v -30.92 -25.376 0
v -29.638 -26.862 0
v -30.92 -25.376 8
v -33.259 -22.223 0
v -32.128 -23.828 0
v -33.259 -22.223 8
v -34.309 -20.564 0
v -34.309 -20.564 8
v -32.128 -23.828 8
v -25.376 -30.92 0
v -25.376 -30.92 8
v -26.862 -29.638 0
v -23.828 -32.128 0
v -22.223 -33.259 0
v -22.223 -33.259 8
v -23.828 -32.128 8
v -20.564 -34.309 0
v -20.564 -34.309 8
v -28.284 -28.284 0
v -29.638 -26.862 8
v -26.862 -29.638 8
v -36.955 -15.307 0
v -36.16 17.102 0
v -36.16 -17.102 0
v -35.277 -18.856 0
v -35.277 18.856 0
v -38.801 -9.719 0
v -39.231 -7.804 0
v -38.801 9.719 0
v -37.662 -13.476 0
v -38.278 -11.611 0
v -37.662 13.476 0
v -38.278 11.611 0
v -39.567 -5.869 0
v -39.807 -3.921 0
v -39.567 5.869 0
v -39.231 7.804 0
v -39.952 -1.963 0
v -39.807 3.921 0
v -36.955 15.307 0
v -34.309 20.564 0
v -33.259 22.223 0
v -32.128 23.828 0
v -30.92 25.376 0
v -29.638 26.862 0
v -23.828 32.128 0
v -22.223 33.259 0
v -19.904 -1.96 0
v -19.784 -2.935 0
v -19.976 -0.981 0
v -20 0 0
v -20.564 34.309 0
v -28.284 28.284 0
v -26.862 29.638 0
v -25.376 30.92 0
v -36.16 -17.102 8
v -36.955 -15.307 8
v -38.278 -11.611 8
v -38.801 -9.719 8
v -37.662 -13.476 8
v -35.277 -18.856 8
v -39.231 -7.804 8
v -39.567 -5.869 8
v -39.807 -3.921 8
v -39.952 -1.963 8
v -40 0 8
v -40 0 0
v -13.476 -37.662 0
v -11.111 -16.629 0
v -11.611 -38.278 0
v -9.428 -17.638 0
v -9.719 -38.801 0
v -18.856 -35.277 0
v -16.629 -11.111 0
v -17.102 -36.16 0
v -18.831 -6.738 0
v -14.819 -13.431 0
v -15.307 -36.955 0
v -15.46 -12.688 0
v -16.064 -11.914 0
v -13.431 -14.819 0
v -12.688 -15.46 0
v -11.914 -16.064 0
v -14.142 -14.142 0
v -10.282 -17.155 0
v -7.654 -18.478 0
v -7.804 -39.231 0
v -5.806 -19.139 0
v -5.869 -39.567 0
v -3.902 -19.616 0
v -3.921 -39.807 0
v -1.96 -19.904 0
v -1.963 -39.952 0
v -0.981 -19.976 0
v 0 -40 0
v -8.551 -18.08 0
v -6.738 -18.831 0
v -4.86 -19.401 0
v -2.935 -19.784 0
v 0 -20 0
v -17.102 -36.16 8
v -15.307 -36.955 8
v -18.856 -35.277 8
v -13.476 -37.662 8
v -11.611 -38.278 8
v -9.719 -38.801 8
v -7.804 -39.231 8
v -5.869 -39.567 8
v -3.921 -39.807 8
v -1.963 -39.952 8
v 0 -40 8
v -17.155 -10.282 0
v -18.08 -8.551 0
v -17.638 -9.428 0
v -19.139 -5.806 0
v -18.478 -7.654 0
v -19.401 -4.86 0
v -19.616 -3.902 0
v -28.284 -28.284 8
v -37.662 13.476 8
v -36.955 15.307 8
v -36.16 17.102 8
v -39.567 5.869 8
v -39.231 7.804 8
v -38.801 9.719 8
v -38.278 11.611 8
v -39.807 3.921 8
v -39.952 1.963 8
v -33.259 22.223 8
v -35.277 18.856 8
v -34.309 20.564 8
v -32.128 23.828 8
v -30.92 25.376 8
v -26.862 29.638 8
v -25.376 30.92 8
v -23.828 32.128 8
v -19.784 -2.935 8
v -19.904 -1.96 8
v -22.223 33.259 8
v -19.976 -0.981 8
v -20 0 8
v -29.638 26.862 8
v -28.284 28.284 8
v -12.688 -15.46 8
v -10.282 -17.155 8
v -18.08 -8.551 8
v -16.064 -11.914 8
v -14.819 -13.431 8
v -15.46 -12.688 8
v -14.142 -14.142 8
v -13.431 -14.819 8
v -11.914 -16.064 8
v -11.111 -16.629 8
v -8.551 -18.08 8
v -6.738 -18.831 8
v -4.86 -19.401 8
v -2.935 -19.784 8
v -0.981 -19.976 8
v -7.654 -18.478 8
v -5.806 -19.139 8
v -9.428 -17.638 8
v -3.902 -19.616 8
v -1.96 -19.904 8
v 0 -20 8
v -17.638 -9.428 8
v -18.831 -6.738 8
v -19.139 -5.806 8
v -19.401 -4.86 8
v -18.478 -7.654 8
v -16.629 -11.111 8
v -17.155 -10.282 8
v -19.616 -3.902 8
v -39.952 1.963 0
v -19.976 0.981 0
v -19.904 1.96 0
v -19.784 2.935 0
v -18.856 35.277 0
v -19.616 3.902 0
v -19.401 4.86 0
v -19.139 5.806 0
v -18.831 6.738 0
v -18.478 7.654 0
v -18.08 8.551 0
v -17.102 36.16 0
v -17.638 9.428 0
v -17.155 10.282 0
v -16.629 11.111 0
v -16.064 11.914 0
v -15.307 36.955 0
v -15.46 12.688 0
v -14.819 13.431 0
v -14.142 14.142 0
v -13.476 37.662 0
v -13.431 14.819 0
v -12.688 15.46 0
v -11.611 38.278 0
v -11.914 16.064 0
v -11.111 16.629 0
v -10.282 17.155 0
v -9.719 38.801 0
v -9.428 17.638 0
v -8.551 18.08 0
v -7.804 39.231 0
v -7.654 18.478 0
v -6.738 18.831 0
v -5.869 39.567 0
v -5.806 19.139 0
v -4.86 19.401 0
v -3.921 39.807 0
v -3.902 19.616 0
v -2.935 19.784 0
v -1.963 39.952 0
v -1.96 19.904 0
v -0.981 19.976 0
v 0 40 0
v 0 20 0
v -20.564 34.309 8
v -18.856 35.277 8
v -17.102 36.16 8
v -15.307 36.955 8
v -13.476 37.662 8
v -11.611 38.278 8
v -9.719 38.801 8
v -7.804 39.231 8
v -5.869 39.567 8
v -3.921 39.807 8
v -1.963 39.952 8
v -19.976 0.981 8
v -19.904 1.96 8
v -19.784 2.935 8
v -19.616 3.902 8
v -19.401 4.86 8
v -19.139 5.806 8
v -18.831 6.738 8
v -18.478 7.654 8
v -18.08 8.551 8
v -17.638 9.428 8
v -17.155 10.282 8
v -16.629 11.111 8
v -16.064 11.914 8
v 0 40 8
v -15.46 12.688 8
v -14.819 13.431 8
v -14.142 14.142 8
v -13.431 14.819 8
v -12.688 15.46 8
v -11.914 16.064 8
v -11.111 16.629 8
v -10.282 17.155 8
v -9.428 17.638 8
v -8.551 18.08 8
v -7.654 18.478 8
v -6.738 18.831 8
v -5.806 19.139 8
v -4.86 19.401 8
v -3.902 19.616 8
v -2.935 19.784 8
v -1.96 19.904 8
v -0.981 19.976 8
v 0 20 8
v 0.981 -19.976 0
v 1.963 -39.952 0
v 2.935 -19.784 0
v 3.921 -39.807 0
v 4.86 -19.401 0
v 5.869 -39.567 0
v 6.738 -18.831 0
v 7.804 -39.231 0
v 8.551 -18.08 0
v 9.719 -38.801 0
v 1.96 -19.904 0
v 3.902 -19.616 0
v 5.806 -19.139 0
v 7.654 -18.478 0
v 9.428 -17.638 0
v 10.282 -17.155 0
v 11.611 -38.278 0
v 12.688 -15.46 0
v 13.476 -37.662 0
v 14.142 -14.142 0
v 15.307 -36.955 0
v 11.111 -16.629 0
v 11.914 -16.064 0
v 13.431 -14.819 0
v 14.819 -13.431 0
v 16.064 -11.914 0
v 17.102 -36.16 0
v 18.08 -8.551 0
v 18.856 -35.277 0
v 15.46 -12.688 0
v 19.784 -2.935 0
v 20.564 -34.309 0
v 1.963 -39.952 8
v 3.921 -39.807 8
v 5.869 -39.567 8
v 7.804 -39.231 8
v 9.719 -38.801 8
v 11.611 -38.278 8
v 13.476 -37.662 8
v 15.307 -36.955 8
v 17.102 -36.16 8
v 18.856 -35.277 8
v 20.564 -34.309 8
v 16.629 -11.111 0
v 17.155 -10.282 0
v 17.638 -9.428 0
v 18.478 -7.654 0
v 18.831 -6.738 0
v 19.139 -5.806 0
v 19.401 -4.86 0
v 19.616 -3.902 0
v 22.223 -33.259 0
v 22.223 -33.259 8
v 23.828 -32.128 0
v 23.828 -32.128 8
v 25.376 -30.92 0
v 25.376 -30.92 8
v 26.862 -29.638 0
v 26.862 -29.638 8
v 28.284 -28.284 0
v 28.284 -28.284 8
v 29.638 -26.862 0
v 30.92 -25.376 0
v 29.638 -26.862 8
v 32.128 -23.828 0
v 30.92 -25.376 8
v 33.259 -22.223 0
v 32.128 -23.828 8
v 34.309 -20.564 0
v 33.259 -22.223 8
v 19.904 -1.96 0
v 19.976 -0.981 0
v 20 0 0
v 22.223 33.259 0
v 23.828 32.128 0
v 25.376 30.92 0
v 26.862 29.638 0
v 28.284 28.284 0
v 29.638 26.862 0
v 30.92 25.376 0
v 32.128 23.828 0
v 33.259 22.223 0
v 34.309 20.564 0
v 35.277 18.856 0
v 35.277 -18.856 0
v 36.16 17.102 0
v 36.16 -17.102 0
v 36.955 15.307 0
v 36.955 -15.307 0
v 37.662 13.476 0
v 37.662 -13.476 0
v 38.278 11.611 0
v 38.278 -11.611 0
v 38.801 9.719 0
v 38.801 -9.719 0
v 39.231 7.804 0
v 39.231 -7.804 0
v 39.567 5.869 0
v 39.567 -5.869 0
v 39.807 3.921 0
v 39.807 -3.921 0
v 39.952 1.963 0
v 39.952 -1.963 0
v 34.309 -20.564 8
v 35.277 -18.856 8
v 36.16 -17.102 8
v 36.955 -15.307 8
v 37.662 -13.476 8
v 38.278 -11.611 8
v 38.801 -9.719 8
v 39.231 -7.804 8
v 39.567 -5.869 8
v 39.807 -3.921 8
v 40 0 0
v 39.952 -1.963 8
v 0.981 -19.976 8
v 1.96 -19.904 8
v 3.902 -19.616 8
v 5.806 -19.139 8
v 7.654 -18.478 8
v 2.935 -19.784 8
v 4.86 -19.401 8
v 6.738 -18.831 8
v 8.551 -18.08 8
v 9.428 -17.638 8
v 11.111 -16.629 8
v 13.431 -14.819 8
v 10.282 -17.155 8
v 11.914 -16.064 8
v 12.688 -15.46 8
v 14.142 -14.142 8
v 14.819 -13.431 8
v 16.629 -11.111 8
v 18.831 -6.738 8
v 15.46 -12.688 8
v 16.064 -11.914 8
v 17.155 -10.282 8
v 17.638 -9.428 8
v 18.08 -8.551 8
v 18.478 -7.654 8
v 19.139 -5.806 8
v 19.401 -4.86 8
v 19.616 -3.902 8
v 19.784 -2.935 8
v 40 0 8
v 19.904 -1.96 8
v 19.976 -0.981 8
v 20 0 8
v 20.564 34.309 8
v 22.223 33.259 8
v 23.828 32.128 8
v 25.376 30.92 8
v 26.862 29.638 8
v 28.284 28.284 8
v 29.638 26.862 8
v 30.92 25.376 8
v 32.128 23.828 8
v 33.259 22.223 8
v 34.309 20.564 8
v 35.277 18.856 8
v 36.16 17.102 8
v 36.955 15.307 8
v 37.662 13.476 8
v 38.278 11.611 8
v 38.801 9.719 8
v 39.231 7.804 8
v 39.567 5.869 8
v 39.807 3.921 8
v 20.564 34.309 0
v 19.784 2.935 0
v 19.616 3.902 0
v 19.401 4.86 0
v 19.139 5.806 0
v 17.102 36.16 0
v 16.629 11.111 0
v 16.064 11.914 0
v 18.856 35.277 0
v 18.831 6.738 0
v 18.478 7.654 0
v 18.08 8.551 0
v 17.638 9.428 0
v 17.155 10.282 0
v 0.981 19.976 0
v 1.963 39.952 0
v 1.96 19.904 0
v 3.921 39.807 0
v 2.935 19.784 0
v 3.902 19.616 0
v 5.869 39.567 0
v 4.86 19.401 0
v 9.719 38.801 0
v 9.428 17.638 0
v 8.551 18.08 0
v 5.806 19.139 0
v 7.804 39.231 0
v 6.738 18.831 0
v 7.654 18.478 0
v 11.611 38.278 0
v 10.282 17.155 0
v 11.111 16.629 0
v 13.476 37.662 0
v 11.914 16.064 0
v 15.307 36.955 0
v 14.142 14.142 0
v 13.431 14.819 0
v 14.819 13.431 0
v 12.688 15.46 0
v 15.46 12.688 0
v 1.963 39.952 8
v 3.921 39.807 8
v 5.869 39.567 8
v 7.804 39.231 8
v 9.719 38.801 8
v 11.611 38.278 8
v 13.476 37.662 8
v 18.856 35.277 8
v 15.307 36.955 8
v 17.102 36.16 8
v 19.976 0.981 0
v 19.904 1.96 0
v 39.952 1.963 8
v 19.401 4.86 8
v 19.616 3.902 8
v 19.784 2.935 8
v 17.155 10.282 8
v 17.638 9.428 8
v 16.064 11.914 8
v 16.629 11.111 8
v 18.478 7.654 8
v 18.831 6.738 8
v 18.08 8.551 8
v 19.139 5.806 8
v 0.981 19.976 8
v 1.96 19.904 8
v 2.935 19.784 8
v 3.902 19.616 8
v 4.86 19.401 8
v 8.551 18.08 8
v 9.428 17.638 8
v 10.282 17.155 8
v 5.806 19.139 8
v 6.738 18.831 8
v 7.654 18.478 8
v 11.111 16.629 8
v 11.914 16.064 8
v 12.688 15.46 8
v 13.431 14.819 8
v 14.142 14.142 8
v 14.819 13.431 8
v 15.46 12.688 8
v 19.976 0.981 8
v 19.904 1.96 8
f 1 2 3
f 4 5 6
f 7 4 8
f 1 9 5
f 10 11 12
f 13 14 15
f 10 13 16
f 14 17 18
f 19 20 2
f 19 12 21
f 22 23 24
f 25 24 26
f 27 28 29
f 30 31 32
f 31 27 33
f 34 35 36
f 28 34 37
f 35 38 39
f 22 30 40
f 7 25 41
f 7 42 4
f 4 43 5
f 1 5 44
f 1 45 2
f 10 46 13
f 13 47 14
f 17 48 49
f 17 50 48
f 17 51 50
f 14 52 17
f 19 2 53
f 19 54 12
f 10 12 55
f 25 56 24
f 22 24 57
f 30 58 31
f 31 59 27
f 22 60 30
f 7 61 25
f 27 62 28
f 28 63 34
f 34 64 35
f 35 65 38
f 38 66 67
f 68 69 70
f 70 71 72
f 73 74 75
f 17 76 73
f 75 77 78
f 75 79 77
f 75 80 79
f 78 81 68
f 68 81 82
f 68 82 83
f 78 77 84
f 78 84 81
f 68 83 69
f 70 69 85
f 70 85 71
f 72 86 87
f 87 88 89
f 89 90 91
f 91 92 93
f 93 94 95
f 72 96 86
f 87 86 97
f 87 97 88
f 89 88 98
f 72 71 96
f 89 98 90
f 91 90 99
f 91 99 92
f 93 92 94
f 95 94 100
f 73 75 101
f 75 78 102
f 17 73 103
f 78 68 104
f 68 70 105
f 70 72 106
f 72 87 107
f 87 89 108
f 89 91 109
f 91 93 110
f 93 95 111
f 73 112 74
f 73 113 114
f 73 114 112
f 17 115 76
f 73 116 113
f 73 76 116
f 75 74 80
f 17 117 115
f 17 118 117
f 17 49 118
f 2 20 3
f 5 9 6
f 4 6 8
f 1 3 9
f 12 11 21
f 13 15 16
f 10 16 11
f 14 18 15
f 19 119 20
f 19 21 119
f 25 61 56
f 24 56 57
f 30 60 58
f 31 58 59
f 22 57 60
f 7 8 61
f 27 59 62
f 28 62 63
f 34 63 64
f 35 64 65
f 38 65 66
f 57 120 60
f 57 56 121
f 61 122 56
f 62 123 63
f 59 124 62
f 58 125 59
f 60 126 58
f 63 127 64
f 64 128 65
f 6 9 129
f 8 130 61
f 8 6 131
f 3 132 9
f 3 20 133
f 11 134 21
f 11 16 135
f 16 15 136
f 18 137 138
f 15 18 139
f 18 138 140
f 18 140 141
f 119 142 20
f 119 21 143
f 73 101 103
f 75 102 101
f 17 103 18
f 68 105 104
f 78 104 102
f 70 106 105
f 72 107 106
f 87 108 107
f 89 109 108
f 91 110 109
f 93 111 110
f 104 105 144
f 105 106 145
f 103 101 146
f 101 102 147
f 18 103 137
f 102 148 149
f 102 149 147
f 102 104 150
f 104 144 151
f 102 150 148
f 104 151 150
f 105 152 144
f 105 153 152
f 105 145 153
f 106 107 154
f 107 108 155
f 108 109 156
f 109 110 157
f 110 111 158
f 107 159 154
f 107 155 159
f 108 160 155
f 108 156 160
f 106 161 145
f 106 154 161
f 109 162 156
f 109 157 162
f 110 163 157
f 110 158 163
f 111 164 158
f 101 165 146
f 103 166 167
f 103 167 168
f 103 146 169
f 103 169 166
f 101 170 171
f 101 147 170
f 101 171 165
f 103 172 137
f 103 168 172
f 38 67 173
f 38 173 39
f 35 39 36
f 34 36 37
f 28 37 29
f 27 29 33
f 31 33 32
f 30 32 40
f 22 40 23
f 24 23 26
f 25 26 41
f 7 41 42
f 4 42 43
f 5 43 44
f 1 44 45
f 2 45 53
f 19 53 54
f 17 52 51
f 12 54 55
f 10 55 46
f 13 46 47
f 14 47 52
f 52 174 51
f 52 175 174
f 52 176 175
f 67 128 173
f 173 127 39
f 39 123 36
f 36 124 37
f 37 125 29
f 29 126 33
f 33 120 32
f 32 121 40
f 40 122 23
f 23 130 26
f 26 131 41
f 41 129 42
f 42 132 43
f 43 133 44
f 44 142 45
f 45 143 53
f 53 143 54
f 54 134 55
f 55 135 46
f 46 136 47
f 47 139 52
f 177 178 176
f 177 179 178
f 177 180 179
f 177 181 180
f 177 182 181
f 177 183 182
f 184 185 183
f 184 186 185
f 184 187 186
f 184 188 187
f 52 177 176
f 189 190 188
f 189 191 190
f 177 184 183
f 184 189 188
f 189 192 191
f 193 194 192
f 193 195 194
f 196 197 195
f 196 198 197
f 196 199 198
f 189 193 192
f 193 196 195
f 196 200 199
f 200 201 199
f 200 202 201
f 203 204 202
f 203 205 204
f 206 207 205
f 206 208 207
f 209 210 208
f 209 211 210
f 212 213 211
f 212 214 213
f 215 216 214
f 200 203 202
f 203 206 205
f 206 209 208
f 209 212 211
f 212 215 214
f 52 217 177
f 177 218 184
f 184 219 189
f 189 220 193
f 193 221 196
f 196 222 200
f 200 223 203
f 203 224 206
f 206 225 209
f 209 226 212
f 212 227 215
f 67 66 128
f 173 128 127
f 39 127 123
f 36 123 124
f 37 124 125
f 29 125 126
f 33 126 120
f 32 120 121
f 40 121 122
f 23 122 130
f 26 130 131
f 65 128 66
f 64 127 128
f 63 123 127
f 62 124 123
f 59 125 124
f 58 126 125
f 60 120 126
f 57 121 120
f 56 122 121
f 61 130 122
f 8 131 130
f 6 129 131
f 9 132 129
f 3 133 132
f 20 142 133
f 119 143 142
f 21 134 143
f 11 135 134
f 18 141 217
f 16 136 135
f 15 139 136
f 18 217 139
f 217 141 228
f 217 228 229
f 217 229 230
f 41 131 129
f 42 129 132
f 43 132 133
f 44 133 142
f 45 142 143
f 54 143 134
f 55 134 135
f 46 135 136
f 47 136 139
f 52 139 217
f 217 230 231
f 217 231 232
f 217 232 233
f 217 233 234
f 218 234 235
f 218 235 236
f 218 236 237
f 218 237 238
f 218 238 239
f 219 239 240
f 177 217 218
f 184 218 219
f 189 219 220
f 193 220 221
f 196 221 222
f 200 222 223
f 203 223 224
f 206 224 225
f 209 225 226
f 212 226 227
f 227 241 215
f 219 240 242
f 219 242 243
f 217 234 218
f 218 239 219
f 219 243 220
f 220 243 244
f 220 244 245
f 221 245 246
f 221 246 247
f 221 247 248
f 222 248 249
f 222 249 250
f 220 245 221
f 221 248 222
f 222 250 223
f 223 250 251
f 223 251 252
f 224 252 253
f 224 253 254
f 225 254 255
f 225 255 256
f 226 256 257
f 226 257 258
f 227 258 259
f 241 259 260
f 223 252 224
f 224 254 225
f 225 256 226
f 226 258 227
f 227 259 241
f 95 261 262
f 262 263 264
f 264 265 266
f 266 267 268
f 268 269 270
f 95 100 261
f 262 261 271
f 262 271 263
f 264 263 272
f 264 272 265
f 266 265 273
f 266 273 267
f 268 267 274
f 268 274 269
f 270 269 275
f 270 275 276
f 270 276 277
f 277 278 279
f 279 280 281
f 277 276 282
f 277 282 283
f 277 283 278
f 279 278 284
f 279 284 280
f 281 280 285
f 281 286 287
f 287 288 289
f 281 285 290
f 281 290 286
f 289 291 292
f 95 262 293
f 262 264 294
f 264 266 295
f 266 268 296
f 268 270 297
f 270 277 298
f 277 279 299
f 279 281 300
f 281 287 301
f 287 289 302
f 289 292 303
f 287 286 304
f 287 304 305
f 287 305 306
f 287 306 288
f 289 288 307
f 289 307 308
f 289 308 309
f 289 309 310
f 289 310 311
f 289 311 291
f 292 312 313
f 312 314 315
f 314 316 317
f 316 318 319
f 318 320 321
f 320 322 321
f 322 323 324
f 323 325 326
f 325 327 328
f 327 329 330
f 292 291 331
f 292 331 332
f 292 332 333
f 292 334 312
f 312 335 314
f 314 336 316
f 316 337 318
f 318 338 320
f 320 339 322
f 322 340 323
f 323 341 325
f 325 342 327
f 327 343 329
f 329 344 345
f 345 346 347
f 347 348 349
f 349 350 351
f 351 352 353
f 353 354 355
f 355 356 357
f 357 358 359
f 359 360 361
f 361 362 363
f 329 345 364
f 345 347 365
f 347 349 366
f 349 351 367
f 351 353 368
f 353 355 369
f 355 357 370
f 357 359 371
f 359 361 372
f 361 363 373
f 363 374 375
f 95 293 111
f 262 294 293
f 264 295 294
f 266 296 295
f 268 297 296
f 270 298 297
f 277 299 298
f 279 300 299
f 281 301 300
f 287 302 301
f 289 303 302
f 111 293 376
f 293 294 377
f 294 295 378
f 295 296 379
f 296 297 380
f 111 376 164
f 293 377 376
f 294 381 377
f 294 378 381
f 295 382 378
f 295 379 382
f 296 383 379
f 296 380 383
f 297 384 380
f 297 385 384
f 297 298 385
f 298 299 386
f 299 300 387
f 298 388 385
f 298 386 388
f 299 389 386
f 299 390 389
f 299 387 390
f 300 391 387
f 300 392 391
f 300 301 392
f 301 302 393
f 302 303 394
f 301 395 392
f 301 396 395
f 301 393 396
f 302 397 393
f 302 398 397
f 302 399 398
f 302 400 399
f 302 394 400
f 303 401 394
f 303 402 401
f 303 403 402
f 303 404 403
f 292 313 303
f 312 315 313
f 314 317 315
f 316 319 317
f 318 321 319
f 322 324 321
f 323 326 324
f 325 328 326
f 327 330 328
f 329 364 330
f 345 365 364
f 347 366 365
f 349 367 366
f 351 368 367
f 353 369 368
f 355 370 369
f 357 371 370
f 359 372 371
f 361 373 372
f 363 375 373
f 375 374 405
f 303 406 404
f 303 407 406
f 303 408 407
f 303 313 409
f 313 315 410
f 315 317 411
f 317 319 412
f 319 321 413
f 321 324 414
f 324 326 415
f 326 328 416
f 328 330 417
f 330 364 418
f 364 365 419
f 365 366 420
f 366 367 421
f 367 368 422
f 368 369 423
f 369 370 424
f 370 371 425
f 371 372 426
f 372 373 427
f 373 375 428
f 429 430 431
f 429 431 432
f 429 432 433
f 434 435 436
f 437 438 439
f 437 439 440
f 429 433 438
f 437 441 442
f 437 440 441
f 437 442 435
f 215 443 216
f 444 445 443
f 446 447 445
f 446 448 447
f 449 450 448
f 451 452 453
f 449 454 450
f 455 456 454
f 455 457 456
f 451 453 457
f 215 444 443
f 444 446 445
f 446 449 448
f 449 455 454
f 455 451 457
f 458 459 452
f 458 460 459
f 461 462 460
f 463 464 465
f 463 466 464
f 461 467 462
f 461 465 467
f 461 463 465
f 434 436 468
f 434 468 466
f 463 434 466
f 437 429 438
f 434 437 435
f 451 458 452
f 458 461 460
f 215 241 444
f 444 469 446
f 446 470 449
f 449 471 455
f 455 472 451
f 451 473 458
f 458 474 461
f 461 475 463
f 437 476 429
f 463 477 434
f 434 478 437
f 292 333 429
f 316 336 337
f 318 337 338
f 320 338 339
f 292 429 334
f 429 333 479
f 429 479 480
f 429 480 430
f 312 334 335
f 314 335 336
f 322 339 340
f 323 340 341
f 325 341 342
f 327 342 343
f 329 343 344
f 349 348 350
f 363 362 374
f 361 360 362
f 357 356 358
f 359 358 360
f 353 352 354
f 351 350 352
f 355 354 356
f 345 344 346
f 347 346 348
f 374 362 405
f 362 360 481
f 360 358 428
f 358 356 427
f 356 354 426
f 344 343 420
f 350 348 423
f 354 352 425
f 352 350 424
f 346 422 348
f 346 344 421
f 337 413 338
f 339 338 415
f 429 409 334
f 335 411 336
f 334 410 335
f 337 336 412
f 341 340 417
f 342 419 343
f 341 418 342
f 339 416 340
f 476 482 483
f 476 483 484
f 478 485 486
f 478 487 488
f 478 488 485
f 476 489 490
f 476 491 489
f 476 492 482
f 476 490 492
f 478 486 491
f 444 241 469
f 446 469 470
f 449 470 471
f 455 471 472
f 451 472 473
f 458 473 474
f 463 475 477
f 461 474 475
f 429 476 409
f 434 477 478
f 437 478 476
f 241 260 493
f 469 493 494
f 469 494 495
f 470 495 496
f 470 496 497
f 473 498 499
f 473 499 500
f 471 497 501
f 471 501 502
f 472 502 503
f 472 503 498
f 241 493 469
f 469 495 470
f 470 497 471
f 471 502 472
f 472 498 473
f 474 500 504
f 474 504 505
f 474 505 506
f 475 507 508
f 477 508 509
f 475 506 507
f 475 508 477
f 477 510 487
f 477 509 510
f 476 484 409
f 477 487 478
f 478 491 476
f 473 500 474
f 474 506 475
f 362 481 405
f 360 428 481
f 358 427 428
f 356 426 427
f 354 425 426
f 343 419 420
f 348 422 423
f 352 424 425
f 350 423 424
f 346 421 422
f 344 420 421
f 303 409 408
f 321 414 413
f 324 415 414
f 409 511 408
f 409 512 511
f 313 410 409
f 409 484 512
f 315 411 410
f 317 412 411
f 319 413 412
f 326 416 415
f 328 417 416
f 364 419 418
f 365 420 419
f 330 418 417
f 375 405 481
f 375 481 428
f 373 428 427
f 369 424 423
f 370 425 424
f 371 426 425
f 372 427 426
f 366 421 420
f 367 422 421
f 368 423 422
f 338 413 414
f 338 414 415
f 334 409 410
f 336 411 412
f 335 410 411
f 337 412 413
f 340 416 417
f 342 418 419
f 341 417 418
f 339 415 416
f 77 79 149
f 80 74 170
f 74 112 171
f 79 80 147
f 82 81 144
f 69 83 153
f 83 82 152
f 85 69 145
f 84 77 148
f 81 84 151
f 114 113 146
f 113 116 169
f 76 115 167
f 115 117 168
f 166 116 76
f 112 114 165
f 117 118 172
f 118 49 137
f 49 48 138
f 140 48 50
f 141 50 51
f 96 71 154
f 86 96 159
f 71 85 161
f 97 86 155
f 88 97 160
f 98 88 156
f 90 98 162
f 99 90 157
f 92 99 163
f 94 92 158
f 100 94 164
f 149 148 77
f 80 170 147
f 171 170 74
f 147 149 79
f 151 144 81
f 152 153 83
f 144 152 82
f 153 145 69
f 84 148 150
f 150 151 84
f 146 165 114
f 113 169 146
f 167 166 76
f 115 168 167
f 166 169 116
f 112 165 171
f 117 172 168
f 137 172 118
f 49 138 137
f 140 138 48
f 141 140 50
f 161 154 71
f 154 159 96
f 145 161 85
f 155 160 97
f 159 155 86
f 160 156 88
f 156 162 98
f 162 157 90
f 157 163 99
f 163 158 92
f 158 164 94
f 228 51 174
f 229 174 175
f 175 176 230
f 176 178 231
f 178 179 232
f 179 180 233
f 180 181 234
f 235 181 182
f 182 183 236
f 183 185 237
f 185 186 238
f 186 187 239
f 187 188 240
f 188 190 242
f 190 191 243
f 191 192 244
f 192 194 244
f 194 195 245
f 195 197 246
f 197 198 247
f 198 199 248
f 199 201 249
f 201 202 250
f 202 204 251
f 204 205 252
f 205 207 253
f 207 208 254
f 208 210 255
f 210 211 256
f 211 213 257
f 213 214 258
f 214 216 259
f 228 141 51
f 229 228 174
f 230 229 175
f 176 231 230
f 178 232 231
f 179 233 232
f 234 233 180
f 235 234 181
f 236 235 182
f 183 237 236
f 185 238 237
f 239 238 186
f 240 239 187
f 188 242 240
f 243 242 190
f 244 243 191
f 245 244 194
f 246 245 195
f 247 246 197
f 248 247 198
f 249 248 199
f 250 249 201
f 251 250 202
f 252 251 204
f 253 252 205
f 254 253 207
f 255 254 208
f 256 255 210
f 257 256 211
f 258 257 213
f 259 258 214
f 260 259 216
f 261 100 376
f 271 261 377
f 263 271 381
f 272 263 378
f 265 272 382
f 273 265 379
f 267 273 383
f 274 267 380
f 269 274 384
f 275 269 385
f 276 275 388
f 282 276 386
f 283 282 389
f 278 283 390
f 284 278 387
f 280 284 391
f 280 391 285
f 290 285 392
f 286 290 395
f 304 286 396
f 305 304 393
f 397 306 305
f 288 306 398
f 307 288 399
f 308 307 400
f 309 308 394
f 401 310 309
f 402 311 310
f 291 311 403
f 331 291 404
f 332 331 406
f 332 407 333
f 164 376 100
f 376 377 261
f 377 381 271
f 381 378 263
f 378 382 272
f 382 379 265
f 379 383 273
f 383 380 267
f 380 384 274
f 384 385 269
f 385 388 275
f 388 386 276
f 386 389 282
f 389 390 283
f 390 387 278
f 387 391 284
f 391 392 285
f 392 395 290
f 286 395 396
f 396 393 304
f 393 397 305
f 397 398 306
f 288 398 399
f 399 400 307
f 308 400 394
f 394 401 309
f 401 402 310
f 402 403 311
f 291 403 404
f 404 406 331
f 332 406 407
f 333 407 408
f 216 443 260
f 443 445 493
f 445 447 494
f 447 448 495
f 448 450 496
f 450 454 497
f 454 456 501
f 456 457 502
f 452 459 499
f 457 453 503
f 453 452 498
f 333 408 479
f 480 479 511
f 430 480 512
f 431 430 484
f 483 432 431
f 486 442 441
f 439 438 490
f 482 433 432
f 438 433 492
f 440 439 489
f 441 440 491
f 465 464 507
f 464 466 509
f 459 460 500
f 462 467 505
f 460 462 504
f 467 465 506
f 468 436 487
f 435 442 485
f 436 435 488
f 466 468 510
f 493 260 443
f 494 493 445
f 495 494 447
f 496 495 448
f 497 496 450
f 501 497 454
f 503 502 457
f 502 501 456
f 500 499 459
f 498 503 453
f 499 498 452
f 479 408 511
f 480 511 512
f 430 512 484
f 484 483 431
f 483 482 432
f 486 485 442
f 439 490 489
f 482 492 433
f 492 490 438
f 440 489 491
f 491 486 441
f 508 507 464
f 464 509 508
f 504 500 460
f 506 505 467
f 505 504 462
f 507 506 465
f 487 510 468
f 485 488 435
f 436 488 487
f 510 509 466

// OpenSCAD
// test_ring.scad
// Ground truth: annular ring, outer diameter 80mm, inner diameter 40mm
// Validates: hole/interior contour handling (two closed paths in the SVG)

outer_d = 80;
inner_d = 40;
height  = 8;

difference() {
    cylinder(h=height, d=outer_d, $fn=128);
    cylinder(h=height, d=inner_d, $fn=128);
}
